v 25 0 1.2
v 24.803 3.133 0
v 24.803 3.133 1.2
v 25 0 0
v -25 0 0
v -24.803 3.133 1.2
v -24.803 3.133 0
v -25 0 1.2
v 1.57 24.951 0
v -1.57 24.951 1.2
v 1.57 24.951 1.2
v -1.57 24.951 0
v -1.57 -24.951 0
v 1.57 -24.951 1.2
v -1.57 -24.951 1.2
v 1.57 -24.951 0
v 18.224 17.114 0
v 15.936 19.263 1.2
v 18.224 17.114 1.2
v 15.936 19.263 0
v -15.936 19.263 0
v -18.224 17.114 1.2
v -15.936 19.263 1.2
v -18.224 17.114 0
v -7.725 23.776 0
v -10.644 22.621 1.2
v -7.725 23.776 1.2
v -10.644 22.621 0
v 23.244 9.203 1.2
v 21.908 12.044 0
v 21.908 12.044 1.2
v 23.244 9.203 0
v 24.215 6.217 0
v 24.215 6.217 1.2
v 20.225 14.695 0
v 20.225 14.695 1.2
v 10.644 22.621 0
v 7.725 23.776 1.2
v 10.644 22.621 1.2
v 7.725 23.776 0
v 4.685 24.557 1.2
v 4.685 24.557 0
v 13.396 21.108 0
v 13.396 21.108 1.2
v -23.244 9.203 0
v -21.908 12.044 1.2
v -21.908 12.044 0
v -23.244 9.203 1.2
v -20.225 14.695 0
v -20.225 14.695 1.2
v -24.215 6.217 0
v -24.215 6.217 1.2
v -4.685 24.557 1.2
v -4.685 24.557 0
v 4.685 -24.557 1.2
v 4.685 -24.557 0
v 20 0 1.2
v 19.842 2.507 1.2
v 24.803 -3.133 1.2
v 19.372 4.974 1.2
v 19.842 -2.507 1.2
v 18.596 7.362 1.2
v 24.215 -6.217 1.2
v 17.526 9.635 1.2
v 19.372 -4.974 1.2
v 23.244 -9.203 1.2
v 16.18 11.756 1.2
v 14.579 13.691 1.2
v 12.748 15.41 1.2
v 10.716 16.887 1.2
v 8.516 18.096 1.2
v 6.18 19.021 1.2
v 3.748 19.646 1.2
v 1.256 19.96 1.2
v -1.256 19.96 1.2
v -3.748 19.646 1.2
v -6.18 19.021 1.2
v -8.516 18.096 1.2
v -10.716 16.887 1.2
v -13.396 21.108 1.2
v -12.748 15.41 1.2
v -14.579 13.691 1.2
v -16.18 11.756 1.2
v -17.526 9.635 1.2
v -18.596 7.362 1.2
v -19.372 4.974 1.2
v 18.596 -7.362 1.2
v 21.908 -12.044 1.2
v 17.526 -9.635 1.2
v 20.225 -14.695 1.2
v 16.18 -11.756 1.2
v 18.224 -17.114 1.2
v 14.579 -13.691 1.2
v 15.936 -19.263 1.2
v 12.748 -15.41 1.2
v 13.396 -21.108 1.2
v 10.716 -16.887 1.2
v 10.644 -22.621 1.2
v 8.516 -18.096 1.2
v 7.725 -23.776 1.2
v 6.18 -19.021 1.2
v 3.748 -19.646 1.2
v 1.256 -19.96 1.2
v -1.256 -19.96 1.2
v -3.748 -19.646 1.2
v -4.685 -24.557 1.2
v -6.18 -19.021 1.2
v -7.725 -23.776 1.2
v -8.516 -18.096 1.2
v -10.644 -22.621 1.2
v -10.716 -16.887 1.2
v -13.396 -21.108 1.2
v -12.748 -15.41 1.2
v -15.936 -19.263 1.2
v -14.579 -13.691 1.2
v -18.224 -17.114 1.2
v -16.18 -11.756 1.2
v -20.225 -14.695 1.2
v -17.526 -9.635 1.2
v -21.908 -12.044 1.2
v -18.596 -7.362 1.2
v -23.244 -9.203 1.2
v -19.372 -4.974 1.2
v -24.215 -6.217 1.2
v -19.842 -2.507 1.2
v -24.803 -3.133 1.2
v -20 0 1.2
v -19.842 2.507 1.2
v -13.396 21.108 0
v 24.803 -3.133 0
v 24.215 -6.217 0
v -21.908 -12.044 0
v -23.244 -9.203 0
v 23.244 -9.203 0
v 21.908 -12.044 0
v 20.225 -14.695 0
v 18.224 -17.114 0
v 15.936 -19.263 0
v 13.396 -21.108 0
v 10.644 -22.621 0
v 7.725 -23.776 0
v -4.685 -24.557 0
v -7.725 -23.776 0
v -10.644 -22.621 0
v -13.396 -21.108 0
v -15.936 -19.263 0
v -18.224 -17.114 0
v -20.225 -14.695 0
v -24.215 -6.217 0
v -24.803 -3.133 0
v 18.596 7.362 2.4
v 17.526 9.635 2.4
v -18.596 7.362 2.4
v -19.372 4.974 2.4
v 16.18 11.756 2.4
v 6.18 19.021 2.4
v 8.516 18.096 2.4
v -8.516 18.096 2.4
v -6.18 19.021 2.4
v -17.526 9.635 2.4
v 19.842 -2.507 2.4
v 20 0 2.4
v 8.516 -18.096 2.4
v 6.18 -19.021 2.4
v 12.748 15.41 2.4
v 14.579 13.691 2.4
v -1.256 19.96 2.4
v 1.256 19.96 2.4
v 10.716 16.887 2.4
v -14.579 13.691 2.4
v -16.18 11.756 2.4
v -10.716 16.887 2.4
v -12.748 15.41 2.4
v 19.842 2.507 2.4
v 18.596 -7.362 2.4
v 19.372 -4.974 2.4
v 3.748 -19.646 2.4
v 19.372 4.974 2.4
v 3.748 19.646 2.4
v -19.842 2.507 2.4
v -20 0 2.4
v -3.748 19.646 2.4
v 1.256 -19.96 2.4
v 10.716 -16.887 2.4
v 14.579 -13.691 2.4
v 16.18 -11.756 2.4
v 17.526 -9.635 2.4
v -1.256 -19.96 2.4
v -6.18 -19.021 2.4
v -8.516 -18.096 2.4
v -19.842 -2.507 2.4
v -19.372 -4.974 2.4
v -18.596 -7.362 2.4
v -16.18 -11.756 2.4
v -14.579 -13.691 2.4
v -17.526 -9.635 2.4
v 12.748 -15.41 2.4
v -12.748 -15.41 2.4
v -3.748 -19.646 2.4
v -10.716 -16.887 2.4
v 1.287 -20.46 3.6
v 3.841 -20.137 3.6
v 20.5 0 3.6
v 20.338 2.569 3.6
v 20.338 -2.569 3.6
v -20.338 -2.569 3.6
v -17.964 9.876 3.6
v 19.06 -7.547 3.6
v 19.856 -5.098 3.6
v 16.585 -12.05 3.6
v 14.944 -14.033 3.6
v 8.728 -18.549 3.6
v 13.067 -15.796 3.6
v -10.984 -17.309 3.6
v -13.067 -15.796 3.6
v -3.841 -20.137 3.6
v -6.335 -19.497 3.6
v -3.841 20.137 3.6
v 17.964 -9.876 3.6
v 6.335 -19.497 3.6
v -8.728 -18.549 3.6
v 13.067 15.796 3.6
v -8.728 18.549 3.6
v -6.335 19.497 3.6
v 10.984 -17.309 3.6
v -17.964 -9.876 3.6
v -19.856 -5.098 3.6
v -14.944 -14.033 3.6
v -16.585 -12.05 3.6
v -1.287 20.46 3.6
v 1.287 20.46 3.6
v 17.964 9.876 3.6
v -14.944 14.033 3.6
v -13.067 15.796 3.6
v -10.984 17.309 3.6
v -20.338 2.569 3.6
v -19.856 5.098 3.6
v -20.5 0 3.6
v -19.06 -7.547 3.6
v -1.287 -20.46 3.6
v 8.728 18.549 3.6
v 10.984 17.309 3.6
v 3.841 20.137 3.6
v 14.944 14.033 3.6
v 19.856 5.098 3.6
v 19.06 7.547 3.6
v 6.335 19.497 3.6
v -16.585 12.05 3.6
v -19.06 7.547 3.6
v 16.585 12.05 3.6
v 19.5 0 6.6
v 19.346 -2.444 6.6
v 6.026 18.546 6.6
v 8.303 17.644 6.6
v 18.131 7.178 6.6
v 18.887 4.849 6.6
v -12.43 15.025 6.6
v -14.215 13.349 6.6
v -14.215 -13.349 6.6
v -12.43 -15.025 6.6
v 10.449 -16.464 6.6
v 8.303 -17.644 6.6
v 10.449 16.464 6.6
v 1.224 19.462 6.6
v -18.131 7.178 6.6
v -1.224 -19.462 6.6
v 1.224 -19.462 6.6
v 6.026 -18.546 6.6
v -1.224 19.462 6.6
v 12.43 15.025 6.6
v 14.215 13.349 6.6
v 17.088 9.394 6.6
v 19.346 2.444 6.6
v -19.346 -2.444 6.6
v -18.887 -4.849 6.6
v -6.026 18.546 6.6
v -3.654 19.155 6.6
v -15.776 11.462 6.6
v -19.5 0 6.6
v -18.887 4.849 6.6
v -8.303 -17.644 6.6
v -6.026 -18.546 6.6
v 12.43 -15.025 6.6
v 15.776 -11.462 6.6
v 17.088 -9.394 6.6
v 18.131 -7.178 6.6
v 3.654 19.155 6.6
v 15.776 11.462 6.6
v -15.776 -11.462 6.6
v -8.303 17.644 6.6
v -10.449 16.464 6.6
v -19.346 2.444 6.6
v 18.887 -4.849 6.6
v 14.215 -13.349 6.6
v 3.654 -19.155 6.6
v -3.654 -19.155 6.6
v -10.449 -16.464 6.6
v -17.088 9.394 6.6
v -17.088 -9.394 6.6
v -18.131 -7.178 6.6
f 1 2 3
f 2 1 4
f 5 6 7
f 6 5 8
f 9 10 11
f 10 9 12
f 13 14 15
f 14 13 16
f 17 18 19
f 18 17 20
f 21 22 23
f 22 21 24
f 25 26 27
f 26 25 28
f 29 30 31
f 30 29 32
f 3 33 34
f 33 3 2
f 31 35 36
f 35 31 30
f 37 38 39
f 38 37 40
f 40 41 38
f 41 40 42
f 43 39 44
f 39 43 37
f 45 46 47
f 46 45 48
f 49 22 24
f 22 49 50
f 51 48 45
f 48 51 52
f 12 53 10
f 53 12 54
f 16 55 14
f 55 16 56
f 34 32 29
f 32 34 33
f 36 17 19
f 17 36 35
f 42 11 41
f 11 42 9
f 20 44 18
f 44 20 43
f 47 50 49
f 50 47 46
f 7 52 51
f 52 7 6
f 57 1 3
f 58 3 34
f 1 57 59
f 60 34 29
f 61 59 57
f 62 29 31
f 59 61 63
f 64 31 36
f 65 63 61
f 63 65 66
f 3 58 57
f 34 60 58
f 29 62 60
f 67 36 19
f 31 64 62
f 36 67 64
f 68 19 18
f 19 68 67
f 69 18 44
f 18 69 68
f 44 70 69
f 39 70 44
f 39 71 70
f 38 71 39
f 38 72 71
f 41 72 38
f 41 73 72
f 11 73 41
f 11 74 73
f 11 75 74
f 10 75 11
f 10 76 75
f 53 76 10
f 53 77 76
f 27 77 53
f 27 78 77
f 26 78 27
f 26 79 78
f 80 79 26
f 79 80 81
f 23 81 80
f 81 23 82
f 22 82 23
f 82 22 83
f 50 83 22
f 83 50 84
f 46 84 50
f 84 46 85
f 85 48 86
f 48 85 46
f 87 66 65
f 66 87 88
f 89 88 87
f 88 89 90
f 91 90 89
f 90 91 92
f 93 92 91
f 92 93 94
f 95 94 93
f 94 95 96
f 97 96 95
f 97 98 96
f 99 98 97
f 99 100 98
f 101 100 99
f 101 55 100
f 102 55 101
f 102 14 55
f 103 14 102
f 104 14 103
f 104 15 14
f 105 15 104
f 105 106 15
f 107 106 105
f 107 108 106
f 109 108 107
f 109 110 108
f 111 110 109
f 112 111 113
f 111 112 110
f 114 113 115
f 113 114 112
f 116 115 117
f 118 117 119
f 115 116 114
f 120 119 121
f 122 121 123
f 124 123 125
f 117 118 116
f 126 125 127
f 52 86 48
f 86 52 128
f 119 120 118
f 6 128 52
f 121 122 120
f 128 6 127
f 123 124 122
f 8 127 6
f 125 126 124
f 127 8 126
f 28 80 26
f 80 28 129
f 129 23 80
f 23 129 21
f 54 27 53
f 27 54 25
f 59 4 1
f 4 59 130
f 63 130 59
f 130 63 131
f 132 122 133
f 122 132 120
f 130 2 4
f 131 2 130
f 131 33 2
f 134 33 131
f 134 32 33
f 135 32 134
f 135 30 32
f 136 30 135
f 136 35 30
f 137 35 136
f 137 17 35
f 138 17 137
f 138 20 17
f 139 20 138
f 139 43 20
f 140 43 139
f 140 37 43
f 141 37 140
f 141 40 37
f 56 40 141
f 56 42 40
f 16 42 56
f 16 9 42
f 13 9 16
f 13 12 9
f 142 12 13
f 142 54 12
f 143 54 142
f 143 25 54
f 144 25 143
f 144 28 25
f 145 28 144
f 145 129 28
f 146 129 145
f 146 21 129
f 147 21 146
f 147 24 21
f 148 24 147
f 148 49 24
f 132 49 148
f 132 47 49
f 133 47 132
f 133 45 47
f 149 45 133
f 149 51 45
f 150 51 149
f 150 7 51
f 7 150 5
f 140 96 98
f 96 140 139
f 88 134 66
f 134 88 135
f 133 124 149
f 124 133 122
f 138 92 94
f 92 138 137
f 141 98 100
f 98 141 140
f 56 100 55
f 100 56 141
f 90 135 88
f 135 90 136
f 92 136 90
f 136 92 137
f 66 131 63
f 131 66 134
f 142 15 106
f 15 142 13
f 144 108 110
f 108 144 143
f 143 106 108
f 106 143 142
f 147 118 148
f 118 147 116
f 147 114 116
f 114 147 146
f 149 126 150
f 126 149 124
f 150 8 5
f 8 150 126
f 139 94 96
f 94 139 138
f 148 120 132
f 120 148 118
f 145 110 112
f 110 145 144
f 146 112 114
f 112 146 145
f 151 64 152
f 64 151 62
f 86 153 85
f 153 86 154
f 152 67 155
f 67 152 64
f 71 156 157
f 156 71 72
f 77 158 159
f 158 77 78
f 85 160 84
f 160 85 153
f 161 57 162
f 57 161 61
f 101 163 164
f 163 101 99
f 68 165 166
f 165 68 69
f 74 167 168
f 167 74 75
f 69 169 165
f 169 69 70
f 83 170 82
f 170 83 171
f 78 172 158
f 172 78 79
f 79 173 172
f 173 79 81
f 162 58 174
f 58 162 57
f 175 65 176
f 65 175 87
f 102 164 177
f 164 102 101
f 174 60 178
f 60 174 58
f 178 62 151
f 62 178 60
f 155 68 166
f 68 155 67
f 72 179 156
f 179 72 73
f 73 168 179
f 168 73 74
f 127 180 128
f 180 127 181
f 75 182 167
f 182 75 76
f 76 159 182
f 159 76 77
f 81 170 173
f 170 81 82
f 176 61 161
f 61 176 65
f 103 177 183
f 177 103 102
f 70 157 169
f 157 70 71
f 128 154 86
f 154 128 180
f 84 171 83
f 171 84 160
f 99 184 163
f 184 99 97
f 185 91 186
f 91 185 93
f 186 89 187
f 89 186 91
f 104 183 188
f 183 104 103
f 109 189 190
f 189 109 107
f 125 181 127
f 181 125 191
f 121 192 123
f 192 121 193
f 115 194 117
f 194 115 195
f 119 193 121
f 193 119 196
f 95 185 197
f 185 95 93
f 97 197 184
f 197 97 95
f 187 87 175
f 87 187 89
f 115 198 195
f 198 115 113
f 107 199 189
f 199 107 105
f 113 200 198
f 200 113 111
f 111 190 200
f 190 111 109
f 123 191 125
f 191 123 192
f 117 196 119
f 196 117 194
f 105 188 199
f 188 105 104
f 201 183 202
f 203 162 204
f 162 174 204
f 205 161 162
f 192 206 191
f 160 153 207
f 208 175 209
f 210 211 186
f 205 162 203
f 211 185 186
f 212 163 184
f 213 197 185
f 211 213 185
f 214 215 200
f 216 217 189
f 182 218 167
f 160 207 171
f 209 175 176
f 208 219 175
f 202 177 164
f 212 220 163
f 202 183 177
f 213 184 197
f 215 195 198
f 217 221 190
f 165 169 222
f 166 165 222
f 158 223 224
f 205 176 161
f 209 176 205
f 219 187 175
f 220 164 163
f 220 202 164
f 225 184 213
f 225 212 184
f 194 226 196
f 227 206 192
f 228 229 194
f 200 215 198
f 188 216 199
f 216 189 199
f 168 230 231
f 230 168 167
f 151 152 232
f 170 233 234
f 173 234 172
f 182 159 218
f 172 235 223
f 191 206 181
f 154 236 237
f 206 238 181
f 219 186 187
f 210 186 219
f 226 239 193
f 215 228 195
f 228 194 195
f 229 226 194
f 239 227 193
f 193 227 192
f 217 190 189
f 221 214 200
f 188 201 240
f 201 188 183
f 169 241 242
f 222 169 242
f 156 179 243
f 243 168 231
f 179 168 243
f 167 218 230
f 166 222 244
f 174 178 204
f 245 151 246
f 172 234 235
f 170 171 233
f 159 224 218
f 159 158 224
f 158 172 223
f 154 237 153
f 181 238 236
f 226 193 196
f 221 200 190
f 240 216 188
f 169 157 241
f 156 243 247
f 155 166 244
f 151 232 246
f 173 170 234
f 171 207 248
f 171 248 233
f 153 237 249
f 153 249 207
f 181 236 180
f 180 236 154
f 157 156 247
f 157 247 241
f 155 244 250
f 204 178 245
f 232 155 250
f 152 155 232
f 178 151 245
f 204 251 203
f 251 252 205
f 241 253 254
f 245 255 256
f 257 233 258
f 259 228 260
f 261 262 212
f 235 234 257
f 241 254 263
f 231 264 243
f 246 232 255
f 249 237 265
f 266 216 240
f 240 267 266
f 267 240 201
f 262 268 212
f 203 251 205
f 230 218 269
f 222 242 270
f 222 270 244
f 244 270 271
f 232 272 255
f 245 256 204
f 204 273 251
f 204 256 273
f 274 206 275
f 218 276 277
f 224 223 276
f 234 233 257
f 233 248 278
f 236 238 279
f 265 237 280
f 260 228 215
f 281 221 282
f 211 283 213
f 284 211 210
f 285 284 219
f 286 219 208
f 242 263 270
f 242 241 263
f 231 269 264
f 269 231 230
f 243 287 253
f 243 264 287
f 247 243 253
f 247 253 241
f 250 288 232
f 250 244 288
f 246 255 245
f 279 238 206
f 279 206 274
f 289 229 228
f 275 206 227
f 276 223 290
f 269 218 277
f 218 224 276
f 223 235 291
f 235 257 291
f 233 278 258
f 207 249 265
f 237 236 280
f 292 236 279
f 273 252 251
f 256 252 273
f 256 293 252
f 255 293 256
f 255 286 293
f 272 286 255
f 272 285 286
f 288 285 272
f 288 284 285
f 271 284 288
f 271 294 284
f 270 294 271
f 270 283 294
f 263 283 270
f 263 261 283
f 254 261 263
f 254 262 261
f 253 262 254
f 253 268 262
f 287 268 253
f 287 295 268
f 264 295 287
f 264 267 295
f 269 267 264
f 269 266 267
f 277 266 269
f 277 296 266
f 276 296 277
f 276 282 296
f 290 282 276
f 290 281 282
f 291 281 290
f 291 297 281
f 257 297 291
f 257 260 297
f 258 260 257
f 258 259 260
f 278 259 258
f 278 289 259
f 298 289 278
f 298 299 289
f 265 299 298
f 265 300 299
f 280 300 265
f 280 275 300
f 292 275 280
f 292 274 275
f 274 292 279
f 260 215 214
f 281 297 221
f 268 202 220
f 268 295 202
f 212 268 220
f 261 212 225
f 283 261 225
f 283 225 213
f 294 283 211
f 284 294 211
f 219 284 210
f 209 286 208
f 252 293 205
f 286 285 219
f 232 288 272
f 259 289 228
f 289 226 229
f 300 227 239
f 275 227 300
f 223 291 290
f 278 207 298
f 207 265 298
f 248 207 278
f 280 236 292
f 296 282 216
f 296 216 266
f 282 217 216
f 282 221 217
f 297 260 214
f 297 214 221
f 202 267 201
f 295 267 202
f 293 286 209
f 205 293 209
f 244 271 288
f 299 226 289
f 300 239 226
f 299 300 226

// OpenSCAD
$fn=50;

cylinder(1.2,50/2,50/2);
translate([0,0,1.2])cylinder(1.2,40/2,40/2);
translate([0,0,2.4])cylinder(1.2,40/2,41/2);
translate([0,0,3.6])cylinder(3,41/2,39/2);
